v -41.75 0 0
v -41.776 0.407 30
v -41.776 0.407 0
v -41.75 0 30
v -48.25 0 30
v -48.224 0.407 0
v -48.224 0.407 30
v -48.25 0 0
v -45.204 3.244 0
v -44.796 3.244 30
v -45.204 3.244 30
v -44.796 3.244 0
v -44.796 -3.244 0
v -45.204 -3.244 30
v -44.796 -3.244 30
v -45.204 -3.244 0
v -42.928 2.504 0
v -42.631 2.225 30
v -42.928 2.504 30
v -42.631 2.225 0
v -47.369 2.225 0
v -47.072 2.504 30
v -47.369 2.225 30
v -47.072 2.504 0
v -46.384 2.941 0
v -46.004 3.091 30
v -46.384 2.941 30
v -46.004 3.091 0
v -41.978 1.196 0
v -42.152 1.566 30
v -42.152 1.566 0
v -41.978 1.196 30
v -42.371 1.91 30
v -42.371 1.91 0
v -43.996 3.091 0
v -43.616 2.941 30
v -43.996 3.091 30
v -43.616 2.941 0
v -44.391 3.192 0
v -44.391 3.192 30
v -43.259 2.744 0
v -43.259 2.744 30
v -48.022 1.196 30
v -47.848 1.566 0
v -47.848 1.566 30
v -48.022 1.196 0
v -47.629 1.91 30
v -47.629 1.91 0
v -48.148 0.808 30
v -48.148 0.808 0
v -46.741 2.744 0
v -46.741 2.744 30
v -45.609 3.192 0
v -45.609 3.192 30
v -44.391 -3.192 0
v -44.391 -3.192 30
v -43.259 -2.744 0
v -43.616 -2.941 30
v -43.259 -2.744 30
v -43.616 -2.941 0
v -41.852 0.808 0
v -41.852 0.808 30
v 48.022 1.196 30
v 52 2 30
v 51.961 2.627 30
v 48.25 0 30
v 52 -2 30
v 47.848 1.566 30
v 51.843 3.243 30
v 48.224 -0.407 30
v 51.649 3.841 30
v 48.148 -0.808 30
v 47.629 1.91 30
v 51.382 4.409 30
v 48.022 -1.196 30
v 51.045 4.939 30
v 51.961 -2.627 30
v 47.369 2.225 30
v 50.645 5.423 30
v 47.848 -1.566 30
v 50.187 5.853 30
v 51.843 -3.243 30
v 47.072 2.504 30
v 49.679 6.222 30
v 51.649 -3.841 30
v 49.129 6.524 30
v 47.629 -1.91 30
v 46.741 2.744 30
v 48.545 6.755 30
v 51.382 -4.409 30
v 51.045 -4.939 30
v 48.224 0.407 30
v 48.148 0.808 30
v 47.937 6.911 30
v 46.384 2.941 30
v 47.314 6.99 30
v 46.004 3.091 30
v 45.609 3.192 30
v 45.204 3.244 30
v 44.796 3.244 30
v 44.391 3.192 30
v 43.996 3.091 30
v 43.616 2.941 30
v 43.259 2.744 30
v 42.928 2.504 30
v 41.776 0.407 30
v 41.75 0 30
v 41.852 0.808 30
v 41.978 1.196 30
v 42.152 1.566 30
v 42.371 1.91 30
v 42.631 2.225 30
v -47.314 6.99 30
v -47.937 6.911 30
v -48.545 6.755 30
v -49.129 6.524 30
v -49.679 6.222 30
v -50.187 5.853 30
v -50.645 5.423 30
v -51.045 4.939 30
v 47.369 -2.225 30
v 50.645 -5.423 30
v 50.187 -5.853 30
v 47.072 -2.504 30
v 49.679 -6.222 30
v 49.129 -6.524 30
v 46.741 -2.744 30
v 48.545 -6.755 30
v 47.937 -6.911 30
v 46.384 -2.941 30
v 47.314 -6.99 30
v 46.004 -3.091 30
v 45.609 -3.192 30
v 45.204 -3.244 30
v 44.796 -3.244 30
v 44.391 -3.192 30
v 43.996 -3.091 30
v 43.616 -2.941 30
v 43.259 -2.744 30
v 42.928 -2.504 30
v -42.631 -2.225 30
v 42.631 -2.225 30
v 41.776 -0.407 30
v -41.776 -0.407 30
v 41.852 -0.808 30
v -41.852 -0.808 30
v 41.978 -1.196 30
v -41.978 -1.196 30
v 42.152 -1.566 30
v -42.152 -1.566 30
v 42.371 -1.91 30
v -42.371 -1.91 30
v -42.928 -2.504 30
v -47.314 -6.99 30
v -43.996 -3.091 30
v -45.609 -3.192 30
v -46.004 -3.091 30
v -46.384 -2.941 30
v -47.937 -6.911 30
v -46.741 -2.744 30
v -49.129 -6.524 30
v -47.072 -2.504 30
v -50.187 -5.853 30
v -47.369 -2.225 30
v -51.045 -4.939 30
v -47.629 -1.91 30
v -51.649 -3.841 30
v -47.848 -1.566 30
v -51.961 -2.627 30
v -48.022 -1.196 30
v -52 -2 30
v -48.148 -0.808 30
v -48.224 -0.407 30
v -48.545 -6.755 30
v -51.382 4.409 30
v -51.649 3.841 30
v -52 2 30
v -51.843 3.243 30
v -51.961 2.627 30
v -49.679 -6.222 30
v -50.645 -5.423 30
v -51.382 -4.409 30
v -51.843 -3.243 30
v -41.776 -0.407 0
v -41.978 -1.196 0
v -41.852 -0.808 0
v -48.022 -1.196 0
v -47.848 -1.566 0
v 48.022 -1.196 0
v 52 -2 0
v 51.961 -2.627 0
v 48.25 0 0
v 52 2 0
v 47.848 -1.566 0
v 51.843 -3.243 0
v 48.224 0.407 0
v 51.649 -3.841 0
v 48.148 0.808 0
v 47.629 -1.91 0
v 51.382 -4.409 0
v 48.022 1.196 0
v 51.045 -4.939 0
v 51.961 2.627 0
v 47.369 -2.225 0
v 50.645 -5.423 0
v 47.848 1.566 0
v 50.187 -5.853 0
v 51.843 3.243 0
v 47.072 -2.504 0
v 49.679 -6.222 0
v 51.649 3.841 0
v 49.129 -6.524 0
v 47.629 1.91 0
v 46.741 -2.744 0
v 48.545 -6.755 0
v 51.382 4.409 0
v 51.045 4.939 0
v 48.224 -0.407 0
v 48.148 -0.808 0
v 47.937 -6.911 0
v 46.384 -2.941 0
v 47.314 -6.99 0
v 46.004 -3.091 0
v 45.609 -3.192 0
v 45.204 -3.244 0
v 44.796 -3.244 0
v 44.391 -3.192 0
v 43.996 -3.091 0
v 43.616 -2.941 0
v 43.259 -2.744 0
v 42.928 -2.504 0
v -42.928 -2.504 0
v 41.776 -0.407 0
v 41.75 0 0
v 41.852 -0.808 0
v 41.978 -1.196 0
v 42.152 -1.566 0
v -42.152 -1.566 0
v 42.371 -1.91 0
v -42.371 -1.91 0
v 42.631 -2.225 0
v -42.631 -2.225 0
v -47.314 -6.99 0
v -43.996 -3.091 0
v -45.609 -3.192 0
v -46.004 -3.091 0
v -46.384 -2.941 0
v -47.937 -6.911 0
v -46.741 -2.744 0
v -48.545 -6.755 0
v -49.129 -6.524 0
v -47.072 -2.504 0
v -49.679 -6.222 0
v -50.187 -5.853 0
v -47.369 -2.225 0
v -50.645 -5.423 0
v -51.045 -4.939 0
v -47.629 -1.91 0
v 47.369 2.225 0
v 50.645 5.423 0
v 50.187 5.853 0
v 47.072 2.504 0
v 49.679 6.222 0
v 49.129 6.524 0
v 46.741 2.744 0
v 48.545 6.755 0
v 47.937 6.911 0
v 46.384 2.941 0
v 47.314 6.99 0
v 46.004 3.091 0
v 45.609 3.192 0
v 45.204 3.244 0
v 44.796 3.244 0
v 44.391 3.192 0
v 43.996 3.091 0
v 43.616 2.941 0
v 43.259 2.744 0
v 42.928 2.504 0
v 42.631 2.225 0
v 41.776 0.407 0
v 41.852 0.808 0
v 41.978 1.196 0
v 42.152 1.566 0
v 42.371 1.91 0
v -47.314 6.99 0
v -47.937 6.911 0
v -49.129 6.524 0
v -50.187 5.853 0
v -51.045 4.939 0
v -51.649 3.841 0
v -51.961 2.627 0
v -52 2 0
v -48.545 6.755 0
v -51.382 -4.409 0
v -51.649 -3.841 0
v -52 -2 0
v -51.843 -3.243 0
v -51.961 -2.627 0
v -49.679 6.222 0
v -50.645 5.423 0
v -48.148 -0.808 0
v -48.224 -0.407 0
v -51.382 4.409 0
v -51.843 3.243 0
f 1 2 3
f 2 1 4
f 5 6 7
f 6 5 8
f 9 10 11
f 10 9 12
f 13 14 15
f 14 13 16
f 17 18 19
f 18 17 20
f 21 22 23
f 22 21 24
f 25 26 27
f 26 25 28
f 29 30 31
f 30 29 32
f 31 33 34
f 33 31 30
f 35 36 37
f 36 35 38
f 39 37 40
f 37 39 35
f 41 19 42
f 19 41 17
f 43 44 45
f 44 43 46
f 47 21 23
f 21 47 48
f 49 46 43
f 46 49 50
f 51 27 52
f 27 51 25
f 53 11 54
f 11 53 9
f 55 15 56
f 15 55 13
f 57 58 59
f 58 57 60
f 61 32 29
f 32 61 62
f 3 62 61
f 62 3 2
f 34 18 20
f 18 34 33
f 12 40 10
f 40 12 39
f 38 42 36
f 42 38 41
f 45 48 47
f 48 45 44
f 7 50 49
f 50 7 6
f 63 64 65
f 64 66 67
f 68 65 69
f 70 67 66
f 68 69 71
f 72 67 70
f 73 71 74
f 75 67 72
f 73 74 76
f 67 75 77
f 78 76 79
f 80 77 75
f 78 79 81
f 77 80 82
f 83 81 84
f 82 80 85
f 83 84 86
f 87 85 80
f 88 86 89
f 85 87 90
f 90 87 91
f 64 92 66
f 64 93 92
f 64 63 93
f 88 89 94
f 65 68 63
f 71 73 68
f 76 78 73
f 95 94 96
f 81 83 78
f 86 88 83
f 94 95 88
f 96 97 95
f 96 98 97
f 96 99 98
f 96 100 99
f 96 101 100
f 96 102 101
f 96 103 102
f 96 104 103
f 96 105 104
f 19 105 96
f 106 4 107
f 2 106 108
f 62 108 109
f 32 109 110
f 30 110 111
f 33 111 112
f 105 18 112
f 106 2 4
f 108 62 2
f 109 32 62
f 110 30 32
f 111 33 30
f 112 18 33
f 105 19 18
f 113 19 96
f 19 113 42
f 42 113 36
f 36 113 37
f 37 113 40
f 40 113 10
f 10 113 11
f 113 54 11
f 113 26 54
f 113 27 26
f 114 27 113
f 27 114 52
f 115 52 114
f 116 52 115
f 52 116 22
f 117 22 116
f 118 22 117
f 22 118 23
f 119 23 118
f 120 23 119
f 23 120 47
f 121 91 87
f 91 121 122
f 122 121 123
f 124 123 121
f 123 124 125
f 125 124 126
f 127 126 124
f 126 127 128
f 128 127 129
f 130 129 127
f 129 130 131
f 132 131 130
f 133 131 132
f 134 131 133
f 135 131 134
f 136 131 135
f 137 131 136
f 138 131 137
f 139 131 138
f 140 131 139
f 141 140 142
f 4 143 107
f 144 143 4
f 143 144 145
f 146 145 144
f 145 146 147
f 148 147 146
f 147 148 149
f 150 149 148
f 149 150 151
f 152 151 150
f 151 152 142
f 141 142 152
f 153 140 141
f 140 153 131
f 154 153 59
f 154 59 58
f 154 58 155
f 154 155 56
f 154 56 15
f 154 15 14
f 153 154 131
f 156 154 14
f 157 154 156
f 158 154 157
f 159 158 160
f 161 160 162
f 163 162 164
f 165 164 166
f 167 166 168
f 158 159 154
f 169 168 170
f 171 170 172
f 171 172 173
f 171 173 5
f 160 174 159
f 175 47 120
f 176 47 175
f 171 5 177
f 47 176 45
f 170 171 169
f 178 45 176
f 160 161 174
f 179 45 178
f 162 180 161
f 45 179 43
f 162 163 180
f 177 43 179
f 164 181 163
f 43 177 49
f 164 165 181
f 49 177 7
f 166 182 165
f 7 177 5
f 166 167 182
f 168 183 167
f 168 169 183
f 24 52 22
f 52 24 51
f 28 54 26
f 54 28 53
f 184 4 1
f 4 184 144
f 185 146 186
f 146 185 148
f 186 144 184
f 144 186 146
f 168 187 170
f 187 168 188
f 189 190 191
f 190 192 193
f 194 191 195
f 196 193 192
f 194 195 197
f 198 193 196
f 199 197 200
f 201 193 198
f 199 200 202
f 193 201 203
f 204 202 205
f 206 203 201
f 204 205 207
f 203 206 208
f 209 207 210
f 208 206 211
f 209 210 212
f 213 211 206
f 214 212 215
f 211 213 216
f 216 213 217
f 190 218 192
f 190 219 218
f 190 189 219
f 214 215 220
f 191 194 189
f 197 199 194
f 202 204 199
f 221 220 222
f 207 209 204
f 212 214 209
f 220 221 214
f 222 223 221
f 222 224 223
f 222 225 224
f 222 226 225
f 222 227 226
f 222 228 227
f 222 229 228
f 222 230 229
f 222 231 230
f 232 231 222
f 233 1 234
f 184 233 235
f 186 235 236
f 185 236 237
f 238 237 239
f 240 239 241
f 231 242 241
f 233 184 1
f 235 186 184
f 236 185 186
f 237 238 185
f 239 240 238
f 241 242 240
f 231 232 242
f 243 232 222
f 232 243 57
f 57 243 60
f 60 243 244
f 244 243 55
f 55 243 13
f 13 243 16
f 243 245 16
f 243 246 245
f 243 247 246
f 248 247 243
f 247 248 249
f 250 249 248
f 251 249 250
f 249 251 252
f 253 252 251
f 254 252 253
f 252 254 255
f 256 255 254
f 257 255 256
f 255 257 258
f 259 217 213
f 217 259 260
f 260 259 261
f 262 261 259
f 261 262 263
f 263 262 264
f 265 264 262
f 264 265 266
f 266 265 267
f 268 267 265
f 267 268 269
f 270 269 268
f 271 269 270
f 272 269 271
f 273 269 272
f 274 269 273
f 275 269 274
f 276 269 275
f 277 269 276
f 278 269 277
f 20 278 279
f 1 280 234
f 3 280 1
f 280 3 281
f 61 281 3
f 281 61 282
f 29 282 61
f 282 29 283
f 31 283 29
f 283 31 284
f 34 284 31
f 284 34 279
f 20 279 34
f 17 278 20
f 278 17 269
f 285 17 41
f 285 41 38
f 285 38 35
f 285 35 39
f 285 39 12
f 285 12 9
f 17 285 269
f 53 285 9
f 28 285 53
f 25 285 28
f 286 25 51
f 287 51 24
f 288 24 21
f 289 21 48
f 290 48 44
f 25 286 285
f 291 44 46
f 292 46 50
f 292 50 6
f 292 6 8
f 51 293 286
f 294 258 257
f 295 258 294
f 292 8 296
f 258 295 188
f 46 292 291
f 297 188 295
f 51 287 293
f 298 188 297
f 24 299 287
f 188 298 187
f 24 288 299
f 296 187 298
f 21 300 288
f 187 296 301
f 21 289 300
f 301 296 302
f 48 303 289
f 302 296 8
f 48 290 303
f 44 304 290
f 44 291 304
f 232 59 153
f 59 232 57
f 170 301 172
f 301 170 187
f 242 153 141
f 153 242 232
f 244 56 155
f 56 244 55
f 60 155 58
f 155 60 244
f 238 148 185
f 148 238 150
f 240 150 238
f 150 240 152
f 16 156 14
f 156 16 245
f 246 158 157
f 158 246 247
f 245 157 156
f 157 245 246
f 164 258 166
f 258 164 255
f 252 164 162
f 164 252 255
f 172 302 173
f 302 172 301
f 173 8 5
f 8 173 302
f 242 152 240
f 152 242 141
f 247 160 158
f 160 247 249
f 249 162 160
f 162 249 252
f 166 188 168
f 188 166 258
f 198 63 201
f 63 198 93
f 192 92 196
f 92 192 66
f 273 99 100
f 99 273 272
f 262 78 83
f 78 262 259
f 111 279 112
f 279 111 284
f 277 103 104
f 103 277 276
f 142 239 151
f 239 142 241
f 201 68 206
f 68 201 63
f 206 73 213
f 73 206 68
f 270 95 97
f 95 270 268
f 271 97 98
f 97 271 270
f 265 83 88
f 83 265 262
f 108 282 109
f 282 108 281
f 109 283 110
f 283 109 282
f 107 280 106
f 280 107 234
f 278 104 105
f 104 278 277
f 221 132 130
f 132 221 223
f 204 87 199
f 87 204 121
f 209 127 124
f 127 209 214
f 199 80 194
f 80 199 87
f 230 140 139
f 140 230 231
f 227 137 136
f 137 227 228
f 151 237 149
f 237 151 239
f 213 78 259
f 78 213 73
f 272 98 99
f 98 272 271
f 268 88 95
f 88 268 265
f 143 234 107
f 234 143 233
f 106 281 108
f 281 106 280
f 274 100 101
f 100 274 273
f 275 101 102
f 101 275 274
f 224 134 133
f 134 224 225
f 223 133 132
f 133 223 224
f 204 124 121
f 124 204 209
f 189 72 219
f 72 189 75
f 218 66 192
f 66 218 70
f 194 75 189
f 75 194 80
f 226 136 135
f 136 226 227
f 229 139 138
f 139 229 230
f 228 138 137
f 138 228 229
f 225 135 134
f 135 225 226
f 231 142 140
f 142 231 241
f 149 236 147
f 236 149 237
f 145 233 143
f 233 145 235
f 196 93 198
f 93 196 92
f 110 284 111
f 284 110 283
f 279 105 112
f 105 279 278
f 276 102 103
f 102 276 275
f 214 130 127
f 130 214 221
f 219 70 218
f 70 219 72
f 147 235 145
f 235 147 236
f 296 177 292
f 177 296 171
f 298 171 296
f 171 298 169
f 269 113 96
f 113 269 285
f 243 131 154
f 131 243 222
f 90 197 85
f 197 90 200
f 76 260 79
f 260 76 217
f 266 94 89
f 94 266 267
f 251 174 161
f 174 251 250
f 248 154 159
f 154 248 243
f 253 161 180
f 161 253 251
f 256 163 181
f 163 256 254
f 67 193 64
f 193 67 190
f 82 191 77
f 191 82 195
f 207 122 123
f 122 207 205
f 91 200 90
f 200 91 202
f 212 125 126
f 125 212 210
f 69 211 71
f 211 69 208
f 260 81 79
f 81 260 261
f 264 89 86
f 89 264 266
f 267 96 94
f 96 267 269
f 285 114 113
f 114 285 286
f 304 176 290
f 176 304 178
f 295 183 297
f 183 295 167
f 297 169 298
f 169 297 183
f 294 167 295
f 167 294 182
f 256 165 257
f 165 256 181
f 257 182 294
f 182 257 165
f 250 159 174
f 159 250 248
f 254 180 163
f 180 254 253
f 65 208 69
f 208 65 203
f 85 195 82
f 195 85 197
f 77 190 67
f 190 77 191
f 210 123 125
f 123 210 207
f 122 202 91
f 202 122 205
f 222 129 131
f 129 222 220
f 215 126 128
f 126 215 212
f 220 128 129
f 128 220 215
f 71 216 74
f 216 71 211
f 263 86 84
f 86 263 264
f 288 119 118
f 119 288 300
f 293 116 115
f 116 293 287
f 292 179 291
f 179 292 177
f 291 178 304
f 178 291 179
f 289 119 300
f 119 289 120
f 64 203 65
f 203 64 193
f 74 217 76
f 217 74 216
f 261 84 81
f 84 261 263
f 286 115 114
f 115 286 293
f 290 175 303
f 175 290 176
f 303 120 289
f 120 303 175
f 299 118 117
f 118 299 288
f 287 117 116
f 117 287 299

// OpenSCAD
$fn = 50;


difference() {
	union() {
		hull() {
			translate(v = [-47.0000000000, 2.0000000000, 0]) {
				cylinder(h = 30, r = 5);
			}
			translate(v = [47.0000000000, 2.0000000000, 0]) {
				cylinder(h = 30, r = 5);
			}
			translate(v = [-47.0000000000, -2.0000000000, 0]) {
				cylinder(h = 30, r = 5);
			}
			translate(v = [47.0000000000, -2.0000000000, 0]) {
				cylinder(h = 30, r = 5);
			}
		}
	}
	union() {
		translate(v = [-45.0000000000, 0.0000000000, -100.0000000000]) {
			cylinder(h = 200, r = 3.2500000000);
		}
		translate(v = [-45.0000000000, 0.0000000000, -100.0000000000]) {
			cylinder(h = 200, r = 3.2500000000);
		}
		translate(v = [45.0000000000, 0.0000000000, -100.0000000000]) {
			cylinder(h = 200, r = 3.2500000000);
		}
		translate(v = [45.0000000000, 0.0000000000, -100.0000000000]) {
			cylinder(h = 200, r = 3.2500000000);
		}
	}
}
